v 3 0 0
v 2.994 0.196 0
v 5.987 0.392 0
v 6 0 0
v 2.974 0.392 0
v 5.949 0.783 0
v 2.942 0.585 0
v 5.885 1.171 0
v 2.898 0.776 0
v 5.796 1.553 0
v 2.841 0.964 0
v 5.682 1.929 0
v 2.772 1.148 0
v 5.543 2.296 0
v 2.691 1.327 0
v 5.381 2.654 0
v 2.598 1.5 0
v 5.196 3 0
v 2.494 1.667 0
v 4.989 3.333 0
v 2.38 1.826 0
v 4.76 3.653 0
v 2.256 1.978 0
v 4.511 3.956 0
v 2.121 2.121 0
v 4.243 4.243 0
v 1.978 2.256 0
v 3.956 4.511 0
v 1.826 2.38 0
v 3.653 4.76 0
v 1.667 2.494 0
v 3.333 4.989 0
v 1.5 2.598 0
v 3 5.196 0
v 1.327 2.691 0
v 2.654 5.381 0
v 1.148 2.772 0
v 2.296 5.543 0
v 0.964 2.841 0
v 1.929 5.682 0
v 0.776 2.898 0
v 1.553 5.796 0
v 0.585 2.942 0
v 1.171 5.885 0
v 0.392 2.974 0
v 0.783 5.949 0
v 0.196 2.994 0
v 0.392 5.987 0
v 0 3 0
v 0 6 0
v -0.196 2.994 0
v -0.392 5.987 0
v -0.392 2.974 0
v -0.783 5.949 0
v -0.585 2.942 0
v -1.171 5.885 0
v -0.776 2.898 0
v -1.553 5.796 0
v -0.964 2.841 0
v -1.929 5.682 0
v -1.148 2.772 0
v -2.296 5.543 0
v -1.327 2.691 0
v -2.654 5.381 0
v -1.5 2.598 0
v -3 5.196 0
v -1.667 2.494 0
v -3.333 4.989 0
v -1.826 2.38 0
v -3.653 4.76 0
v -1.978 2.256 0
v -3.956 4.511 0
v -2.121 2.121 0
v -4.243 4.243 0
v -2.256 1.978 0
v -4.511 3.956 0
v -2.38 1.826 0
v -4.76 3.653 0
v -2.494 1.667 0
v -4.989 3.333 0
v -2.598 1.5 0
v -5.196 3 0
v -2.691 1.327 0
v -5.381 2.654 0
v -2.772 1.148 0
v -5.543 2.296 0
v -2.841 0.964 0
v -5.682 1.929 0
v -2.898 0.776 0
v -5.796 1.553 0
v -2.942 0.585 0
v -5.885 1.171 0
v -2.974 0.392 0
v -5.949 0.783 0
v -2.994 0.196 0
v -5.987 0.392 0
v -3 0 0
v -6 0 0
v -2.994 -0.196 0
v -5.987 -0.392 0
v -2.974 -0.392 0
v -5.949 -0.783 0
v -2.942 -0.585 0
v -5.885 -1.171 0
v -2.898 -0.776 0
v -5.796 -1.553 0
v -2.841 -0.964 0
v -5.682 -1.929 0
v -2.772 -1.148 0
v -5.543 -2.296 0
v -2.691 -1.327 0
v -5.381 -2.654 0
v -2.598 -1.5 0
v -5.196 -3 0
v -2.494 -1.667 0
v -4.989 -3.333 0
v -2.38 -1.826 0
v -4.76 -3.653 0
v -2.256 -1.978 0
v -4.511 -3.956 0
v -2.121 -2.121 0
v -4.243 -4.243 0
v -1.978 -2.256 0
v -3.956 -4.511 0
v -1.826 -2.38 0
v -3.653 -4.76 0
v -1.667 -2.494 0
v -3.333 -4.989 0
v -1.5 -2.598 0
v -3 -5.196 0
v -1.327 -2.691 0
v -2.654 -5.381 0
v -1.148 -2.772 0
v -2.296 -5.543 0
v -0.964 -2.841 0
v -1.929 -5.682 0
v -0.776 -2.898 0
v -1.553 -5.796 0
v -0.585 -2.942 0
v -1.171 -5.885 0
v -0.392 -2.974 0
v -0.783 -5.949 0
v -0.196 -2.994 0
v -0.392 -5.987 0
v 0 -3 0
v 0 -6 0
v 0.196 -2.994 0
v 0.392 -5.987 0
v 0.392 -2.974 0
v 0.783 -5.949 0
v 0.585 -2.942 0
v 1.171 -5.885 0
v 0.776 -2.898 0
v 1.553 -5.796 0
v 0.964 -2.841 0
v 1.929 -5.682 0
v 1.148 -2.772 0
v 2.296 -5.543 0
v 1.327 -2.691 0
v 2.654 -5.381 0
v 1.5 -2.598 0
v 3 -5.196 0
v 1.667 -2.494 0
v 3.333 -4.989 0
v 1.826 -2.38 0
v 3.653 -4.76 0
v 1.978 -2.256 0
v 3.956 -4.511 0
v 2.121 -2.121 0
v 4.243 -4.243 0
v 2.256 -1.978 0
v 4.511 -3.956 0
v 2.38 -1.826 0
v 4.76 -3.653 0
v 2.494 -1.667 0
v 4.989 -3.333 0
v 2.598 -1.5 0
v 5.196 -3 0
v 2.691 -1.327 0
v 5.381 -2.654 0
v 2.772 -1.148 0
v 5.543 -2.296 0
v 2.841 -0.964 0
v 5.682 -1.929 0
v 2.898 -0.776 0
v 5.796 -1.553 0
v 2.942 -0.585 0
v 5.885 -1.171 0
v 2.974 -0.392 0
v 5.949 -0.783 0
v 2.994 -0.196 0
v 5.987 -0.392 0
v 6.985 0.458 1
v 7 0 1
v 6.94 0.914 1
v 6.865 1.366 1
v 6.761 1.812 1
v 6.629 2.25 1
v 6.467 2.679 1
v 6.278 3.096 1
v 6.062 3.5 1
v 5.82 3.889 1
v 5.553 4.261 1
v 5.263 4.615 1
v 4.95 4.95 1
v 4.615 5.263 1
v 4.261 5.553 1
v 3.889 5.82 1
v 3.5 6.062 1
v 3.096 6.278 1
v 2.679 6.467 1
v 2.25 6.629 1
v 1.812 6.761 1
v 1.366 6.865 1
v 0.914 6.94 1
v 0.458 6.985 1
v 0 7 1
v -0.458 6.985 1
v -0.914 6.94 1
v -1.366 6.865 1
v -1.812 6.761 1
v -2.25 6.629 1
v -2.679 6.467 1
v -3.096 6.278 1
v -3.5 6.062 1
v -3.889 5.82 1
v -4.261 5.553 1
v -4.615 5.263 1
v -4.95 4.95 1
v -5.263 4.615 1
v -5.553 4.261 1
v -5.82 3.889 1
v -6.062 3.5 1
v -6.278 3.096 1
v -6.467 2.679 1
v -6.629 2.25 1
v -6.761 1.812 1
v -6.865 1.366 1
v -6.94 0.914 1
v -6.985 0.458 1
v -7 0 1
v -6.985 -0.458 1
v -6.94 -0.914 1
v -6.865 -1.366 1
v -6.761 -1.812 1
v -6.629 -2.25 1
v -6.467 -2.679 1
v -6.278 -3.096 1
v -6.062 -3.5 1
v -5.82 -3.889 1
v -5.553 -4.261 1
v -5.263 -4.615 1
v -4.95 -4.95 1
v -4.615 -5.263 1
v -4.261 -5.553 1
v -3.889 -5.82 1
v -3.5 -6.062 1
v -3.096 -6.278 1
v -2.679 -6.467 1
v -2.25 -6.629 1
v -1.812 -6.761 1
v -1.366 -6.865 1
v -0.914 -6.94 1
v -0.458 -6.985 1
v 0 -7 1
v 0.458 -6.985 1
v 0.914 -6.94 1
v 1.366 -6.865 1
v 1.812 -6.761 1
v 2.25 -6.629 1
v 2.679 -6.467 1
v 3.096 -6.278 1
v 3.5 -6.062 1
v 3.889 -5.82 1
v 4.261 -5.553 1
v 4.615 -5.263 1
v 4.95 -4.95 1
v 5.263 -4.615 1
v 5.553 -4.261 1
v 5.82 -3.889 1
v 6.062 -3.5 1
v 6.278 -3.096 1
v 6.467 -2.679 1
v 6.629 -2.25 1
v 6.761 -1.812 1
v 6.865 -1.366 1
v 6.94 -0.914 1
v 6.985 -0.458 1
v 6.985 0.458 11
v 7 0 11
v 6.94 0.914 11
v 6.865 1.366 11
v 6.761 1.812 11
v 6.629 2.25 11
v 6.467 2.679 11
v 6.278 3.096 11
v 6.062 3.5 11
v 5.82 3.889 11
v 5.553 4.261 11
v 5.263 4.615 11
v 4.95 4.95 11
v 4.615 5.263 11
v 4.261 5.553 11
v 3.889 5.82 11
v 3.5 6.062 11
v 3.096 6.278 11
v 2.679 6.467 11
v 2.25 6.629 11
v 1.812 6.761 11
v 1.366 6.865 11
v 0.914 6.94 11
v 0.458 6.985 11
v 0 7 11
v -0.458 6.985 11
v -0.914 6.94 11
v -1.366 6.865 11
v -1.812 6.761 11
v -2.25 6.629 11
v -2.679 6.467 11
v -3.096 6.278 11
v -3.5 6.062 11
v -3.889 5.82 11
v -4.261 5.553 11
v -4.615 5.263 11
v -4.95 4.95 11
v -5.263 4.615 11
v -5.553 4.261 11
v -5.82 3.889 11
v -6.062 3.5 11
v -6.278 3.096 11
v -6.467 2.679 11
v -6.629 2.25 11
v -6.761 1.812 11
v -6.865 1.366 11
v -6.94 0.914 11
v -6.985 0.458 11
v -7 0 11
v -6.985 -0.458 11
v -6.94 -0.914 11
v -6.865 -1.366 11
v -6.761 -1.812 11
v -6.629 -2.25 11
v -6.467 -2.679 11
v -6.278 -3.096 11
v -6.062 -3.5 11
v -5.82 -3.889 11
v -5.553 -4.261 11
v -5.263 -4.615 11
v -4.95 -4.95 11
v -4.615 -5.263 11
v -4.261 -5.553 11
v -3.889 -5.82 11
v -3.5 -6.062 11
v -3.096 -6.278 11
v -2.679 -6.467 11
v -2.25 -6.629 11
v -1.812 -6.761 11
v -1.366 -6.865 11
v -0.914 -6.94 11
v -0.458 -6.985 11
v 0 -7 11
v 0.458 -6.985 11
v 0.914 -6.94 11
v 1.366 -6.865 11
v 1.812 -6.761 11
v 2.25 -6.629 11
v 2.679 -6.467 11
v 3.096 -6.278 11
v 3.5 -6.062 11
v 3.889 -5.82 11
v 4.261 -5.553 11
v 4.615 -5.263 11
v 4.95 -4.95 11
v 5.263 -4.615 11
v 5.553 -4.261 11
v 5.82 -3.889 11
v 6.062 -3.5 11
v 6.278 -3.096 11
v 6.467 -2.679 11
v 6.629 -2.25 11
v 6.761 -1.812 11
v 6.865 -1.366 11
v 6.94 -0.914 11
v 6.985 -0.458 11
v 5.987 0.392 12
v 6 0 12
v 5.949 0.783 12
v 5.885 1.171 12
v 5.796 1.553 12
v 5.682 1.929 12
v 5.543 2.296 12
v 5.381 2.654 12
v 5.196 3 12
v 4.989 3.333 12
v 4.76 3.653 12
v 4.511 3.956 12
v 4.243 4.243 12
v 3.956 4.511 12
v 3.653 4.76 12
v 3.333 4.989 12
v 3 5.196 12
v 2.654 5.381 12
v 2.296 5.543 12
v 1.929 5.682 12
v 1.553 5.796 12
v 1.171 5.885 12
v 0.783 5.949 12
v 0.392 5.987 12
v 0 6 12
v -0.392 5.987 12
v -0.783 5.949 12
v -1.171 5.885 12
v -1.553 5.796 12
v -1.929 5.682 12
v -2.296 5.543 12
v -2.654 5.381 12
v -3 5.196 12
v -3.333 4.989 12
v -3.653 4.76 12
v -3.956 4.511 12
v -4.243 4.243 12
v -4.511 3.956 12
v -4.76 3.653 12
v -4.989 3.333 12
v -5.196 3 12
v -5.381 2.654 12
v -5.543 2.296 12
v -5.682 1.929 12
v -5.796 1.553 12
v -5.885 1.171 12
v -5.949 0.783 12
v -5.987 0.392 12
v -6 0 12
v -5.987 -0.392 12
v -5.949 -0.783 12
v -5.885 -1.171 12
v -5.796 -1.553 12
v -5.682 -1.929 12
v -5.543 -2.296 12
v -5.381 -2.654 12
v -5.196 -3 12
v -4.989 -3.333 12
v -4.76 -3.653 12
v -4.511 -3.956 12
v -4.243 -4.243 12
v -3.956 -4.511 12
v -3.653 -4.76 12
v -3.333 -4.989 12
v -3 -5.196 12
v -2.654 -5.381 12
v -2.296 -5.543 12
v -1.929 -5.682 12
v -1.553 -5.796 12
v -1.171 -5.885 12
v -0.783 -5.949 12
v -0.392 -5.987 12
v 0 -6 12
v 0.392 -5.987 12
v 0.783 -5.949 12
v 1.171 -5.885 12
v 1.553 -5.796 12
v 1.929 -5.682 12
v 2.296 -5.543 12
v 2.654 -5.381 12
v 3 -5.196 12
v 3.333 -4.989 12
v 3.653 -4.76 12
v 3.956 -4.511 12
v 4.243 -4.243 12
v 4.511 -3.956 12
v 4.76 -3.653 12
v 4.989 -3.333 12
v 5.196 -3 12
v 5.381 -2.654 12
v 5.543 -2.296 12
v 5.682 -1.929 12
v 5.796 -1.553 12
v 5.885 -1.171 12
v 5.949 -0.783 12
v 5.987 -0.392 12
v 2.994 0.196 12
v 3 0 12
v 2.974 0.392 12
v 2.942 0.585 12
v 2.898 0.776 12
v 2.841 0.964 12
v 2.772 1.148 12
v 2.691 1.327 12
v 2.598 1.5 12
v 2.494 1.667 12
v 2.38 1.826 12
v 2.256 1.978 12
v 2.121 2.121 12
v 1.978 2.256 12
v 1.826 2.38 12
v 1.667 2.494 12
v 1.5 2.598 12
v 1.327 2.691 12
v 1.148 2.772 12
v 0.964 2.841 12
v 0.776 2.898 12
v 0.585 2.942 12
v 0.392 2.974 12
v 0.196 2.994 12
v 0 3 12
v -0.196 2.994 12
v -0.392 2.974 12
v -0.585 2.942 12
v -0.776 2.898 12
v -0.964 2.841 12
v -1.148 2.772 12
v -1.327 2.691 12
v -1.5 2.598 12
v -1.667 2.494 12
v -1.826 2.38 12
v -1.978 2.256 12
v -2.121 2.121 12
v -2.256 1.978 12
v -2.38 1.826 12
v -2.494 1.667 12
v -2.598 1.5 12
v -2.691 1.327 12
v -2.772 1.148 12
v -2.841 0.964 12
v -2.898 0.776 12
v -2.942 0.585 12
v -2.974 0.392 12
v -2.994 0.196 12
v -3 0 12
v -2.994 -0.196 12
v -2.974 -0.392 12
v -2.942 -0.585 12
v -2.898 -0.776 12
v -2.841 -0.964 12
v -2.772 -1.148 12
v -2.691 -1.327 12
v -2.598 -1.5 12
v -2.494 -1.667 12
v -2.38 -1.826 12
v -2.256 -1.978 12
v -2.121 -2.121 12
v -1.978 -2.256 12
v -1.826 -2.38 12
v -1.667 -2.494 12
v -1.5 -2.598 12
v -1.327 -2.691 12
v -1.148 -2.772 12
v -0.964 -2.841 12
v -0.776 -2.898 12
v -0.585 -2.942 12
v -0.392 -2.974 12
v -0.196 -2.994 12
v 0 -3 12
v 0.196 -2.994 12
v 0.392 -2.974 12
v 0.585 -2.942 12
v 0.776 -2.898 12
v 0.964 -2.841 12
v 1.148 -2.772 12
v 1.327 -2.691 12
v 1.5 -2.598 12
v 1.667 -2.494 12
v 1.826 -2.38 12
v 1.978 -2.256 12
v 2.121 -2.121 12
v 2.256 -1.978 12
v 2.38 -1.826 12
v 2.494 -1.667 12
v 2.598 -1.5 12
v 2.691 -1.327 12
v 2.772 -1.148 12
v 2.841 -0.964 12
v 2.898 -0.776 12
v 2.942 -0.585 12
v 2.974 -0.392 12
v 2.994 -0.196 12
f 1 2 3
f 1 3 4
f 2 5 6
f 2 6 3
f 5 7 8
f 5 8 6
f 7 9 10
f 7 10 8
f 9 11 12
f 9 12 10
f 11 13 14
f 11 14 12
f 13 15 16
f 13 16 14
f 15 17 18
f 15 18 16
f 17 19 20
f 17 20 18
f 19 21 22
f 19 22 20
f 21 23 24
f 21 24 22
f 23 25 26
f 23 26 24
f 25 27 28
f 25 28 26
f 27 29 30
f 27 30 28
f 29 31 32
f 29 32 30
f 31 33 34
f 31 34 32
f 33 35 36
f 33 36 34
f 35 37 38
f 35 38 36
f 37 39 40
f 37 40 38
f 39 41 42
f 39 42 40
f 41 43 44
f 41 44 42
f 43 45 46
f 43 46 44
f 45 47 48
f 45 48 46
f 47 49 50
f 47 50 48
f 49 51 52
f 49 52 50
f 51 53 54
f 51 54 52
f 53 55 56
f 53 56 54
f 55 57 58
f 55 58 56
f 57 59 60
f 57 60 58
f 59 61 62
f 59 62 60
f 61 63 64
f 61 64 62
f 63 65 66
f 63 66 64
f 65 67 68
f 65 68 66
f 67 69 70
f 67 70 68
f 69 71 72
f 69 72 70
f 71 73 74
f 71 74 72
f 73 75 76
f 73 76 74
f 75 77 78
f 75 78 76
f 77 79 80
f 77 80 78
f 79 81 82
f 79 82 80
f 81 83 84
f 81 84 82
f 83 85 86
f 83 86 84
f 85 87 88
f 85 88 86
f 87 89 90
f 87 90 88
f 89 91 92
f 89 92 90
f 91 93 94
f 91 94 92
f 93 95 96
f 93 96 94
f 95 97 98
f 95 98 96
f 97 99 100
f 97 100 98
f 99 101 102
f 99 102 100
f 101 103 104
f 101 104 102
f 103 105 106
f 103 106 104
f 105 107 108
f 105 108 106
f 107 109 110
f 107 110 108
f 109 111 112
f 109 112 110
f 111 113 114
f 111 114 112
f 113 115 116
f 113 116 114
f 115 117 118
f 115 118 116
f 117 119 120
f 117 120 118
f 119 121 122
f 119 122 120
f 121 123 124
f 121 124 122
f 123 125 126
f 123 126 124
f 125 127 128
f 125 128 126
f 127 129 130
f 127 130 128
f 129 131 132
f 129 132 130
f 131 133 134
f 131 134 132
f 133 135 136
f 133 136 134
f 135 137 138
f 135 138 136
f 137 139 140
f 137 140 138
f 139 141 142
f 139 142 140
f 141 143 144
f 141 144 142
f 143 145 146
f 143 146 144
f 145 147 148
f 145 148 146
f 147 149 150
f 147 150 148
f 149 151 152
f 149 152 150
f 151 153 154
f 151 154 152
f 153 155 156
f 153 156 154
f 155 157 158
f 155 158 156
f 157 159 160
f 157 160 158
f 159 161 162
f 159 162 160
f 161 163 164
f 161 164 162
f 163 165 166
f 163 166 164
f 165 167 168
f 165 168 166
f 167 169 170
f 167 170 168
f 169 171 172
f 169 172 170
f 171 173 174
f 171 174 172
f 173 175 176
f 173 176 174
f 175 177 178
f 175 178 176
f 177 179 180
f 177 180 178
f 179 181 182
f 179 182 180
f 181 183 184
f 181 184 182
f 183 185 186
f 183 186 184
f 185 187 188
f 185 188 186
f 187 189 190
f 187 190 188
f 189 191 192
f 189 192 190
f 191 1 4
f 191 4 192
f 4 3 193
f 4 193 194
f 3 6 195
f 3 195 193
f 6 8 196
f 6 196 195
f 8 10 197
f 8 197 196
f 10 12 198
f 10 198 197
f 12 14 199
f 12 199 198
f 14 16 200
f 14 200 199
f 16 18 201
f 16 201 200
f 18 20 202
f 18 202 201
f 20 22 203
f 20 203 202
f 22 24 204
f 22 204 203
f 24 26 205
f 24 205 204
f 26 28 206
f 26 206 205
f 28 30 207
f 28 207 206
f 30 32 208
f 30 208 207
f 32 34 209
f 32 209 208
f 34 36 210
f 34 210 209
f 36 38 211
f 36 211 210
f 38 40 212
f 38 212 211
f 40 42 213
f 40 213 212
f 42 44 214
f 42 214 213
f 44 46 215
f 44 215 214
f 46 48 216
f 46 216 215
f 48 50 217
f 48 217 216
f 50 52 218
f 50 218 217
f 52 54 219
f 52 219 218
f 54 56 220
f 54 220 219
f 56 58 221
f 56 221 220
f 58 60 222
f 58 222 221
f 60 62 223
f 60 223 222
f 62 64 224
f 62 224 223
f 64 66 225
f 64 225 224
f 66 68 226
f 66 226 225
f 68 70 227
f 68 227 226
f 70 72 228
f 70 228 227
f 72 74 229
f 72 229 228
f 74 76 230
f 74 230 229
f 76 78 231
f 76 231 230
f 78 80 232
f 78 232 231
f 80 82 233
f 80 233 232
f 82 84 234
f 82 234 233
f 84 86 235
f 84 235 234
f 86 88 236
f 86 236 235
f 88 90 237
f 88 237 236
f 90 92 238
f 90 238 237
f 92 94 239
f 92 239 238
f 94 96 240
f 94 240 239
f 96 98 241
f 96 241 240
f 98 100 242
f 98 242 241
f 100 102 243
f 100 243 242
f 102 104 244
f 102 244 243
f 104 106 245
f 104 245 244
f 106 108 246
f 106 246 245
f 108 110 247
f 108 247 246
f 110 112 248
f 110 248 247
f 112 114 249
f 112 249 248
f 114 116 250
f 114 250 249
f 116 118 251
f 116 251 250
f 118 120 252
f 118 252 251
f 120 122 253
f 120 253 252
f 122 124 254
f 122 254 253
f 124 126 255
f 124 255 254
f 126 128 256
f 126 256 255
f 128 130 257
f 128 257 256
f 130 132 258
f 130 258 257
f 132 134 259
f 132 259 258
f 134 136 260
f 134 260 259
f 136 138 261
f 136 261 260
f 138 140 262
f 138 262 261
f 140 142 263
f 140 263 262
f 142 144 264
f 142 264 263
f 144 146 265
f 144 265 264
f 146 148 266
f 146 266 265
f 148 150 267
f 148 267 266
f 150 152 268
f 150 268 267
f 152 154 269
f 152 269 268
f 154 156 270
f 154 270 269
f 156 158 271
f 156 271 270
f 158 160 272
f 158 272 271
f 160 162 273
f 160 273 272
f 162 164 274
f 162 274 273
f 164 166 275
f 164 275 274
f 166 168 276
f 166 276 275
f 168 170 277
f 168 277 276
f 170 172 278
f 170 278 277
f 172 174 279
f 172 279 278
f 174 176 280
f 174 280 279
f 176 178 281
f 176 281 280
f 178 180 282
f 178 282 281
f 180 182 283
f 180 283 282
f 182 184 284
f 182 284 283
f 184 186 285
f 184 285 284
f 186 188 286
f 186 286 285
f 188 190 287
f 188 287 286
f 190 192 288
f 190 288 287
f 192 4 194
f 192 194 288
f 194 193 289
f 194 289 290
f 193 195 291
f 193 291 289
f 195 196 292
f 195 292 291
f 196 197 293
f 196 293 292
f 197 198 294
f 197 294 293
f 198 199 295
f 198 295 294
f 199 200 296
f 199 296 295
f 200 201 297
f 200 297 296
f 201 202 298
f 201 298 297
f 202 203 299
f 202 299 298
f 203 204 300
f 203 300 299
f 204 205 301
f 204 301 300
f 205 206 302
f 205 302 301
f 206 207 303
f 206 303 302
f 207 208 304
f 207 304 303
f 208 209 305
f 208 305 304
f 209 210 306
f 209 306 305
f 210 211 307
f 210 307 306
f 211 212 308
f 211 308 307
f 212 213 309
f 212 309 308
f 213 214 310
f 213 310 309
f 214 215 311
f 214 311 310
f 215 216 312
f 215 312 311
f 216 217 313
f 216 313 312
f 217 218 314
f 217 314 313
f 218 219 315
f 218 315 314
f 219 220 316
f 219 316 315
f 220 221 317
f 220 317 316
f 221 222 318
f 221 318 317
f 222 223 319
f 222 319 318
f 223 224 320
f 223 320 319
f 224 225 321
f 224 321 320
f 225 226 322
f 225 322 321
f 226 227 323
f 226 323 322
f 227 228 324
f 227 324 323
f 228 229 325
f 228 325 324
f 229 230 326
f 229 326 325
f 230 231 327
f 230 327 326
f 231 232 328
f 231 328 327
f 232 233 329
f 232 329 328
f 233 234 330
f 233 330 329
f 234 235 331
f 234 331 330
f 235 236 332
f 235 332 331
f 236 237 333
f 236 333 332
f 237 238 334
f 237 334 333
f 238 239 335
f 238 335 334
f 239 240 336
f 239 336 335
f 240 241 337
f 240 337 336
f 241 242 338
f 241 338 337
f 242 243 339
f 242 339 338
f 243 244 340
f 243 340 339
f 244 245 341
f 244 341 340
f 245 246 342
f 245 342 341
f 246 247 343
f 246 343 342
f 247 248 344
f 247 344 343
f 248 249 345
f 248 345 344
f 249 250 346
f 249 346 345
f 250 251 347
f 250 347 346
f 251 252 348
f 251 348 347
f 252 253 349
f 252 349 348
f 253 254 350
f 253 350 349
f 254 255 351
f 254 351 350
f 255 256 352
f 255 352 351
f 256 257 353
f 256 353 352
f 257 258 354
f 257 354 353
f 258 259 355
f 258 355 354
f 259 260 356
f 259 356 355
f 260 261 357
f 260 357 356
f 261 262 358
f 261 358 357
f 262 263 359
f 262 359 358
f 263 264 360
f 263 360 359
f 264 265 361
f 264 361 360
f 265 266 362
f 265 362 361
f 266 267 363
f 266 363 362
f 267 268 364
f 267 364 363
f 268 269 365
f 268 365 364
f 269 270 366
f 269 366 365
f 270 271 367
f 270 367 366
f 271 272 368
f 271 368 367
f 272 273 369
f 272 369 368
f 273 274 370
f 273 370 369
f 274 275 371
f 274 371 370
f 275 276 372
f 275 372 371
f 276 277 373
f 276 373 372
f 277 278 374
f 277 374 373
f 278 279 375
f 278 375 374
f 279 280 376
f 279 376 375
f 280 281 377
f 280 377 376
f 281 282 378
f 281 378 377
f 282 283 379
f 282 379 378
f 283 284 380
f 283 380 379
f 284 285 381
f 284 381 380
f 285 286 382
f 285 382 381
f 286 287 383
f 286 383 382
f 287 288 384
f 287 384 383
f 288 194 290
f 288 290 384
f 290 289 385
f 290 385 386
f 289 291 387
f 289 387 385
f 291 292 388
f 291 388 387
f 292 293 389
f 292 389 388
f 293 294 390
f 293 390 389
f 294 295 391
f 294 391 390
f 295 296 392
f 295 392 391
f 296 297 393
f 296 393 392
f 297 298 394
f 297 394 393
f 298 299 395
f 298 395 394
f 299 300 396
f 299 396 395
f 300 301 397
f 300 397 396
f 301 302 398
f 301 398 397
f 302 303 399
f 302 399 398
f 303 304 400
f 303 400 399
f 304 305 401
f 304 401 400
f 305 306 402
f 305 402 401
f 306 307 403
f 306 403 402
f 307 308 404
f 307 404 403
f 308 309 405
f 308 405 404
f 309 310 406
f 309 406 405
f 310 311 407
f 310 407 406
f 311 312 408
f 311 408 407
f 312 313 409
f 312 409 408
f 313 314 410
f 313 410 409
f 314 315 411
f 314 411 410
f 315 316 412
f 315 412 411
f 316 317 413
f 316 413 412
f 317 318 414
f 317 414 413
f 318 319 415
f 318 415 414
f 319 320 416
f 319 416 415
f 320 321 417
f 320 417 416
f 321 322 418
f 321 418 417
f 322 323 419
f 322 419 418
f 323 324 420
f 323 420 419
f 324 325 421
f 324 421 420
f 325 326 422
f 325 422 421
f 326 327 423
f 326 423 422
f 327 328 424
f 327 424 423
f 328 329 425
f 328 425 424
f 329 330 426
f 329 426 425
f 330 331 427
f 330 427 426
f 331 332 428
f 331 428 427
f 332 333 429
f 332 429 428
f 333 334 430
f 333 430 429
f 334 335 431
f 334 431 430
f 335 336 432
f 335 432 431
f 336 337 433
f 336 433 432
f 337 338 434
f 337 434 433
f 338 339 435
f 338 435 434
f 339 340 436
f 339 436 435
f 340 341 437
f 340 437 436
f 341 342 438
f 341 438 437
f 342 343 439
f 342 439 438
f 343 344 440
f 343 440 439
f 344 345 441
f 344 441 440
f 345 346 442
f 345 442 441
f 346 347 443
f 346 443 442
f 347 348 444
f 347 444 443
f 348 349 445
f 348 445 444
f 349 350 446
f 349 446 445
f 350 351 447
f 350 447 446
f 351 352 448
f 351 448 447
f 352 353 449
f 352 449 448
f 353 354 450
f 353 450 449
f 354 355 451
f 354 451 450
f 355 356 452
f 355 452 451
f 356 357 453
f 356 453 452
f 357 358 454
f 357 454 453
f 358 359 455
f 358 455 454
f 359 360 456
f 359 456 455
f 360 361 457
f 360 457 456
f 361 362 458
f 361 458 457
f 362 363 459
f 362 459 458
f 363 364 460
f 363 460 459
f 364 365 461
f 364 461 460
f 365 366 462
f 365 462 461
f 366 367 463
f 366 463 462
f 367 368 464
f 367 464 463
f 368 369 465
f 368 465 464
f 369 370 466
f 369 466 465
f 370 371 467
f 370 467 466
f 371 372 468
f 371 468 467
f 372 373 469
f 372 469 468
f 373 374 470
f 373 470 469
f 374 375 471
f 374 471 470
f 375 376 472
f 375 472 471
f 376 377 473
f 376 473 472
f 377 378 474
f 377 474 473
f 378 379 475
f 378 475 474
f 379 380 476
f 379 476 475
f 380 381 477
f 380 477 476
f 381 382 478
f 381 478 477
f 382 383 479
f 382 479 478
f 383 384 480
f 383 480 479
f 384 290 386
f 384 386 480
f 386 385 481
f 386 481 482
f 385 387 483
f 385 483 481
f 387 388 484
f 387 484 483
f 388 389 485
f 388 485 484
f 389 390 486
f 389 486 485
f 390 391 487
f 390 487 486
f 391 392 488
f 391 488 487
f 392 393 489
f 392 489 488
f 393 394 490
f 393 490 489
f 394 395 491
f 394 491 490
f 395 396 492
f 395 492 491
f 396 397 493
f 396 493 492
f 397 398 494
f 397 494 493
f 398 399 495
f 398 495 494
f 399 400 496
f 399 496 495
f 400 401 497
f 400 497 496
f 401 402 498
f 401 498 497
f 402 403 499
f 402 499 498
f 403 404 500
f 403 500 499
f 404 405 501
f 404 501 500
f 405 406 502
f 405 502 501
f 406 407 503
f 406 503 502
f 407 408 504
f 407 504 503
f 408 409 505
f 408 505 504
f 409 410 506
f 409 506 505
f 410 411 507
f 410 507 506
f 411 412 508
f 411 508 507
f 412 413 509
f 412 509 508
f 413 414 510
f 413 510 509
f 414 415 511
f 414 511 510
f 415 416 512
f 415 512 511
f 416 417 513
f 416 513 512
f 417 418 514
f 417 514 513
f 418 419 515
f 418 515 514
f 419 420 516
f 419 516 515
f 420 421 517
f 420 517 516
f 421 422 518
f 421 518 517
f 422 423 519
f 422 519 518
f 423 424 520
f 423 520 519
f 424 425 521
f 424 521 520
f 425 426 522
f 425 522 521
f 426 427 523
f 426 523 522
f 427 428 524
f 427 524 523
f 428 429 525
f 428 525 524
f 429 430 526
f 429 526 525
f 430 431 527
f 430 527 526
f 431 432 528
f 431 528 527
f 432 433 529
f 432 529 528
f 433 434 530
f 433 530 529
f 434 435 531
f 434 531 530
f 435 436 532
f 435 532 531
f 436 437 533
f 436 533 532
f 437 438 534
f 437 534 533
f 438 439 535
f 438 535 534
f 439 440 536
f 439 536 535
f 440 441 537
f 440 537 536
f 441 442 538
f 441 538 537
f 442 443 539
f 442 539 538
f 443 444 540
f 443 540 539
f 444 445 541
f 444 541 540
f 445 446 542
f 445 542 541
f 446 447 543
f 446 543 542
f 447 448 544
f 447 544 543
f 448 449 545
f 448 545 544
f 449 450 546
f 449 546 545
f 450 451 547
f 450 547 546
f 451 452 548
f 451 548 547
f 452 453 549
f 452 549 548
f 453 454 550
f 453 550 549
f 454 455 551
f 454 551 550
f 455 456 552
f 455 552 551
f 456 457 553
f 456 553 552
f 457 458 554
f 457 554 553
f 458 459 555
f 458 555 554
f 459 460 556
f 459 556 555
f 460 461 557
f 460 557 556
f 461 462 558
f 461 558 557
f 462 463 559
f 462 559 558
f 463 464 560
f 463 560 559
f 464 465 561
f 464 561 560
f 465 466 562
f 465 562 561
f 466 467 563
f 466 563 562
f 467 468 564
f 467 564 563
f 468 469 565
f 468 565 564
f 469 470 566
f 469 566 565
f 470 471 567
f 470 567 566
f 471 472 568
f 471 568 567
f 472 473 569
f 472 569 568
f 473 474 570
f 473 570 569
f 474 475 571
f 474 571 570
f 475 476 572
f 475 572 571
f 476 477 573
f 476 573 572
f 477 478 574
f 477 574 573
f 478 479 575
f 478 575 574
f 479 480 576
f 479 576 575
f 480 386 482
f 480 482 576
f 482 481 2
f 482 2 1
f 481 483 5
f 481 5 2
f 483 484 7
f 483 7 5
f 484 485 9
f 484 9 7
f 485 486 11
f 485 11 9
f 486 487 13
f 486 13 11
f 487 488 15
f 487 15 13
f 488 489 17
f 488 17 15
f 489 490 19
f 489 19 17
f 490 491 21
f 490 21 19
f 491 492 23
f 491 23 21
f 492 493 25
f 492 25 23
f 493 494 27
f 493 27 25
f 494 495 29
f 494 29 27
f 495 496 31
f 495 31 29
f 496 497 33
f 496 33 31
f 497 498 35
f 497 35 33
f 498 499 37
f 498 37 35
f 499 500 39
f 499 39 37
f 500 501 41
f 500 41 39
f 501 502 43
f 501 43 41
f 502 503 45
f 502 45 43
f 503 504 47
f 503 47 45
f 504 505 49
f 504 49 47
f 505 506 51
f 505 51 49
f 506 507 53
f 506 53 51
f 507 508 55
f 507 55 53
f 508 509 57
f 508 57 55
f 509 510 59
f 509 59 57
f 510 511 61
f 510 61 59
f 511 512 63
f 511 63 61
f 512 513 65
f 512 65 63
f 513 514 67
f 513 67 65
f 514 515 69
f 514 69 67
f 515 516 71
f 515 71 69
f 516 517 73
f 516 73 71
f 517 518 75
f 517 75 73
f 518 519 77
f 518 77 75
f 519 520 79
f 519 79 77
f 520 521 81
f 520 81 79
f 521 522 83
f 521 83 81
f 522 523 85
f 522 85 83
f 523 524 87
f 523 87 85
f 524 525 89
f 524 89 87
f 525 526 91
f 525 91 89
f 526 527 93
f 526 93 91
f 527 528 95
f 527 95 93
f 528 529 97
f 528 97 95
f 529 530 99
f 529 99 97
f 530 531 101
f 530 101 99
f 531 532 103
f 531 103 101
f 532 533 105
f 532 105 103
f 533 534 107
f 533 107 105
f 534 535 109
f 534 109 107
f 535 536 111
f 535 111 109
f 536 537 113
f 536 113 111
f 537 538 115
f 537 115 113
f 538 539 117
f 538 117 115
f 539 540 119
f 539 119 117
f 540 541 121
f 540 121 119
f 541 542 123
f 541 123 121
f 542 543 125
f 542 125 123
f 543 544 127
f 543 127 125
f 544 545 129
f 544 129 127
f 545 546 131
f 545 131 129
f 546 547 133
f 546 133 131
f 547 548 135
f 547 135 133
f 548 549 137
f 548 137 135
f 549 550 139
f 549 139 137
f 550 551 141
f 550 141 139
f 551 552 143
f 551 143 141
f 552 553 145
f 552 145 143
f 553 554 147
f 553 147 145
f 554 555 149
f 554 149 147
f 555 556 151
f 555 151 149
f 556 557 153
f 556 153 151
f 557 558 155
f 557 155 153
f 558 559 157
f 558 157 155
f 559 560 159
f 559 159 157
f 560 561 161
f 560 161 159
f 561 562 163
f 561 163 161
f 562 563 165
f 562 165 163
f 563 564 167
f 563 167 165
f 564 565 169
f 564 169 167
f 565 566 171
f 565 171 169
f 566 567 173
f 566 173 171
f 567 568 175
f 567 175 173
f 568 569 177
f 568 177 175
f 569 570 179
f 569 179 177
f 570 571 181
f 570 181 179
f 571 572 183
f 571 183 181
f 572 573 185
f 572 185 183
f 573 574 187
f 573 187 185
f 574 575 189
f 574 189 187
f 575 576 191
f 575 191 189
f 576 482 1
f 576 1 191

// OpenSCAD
// Original MechIntel educational model. CC0-1.0. Units: mm.
// Not a standardized or load-rated component.
$fn=96;
// Section points: [radius, height], mm. Edit to change the profile.
section=[[3, 0], [6, 0], [7, 1], [7, 11], [6, 12], [3, 12]];
rotate_extrude($fn=96) polygon(points=section);
